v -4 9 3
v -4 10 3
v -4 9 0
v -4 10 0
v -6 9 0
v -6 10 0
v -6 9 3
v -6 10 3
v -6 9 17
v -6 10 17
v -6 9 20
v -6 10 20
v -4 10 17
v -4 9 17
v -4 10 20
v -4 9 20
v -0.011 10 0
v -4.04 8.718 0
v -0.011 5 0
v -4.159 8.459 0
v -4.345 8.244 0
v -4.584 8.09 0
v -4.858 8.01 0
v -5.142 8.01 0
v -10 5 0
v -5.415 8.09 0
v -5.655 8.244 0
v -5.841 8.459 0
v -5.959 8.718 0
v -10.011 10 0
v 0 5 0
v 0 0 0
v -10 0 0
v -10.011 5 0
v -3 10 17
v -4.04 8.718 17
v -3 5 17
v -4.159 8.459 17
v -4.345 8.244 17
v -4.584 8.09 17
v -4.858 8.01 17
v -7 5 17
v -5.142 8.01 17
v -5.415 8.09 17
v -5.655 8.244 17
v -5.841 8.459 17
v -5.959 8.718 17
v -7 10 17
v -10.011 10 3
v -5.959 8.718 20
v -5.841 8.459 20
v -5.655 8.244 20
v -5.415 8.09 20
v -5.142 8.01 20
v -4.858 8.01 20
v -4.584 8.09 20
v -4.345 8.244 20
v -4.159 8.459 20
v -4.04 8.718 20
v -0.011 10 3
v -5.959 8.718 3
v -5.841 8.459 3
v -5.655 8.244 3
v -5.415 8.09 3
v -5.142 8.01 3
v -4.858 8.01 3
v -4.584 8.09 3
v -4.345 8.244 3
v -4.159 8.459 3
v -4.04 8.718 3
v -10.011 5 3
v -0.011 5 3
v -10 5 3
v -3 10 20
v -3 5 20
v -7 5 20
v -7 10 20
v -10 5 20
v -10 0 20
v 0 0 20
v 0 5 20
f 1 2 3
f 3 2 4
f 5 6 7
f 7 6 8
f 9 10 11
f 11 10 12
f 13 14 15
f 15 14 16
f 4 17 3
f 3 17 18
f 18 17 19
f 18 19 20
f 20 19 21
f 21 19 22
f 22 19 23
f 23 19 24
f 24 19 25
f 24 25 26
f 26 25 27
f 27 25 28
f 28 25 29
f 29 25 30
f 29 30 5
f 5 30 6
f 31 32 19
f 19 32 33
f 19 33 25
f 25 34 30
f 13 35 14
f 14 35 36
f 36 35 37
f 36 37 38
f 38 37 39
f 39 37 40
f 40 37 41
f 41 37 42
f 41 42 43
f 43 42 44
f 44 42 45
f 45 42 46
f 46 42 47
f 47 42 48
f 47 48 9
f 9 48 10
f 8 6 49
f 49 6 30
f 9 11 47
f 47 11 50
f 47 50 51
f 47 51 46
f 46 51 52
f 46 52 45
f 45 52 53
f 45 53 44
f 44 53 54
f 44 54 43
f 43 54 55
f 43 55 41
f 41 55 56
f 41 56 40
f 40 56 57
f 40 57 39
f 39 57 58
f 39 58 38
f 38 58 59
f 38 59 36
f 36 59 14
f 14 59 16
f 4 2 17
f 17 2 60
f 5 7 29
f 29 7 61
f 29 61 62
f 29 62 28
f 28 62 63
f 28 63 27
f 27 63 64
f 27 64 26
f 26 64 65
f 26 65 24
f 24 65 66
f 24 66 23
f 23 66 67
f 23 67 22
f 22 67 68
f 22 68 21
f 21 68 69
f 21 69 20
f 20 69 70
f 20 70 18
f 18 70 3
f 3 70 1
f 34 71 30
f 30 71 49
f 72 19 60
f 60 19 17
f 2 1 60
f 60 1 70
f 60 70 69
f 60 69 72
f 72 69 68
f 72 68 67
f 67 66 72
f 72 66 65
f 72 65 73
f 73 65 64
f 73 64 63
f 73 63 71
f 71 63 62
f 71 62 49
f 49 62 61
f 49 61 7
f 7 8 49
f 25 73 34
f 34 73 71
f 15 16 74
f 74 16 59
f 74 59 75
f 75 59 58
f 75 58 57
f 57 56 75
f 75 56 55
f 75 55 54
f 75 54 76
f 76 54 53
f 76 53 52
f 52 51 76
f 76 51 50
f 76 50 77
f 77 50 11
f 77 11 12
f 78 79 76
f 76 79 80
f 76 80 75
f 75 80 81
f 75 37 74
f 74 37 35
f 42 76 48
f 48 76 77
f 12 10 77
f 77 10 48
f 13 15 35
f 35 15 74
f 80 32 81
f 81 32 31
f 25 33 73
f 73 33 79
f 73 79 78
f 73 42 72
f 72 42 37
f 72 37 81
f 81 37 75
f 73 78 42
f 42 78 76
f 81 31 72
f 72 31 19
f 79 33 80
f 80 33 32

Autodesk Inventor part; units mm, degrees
ref_plane "YZ Plane" through (0, 0, 0) normal (1, 0, 0) x (0, 1, 0)
ref_plane "XZ Plane" through (0, 0, 0) normal (0, 1, 0) x (-1, 0, 0)
ref_plane "XY Plane" through (0, 0, 0) normal (0, 0, 1) x (1, 0, 0)
sketch "Sketch1" plane through (0, 0, 0) normal (0, 1, 0) x (-1, 0, 0)
  line L0 (0, 0) -> (10, 0)
  line L1 (10, 0) -> (10, 20)
  line L2 (10, 20) -> (0, 20)
  line L3 (0, 20) -> (0, 0)
  dimension "d0" = 10
  dimension "d1" = 20
extrude "Extrusion1" add sketch "Sketch1" along normal blind 5
sketch "Sketch2" plane through (0, 5, 0) normal (0, 1, 0) x (1, 0, 0)
  line L0 (-10, -20) -> (0, -20) projected
  line L1 (-6.9999, -20) -> (-2.9999, -20)
  line L2 (-2.9999, -20) -> (-2.9999, -17)
  line L3 (-2.9999, -17) -> (-6.9999, -17)
  line L4 (-6.9999, -17) -> (-6.9999, -20)
  point P0 (0, 0)
  dimension "d4" = 4
  dimension "d5" = 3
extrude "Extrusion2" add sketch "Sketch2" along normal blind 5
sketch "Sketch3" plane through (0, 5, 0) normal (0, 1, 0) x (1, 0, 0)
  line L0 (-10.0114, 0) -> (-0.0114, 0)
  line L1 (-0.0114, 0) -> (-0.0114, -3)
  line L2 (-0.0114, -3) -> (-10.0114, -3)
  line L3 (-10.0114, -3) -> (-10.0114, 0)
  point P0 (0, 0)
  dimension "d8" = 10
  dimension "d9" = 3
extrude "Extrusion3" add sketch "Sketch3" along normal blind 5
sketch "Sketch4" plane through (-10, 0, 20) normal (0, 0, 1) x (1, 0, 0)
  circle A0 centre (5.0001, 9) radius 1
  point P0 (10, 0)
  dimension "d12" = 2
extrude "Extrusion4" cut sketch "Sketch4" against normal blind 21.9875
sketch "Sketch5" plane through (-10, 0, 20) normal (0, 0, 1) x (1, 0, 0)
  circle A0 centre (5.0001, 9) radius 1 projected
  line L0 (4.0001, 9) -> (6.0001, 9)
  line L1 (6.0001, 9) -> (6.0001, 10)
  line L2 (6.0001, 10) -> (4.0001, 10)
  line L3 (4.0001, 10) -> (4.0001, 9)
  point P0 (10, 0)
  dimension "d15" = 2
  dimension "d16" = 1
extrude "Extrusion5" cut sketch "Sketch5" against normal blind 22.4625 contours L3 L2 A0 | A0 L0 | A0 L2 L1 picked at (5.3251, 9.0742)
sketch "Sketch6" plane through (-10, 0, 20) normal (0, 0, 1) x (1, 0, 0)
  arc A0 (4.0001, 9) -> (6.0001, 9) centre (5.0001, 9) ccw projected
  line L0 (4.0001, 9) -> (6.0001, 9)
  line L1 (6.0001, 9) -> (6.0001, 10.3931)
  line L2 (6.0001, 10.3931) -> (4.0001, 10.3931)
  line L3 (4.0001, 10.3931) -> (4.0001, 9)
  point P0 (10, 0)
extrude "Extrusion6" cut sketch "Sketch6" against normal blind 25.1625 contours L3 L2 L1 L0
sketch "Sketch7" plane through (0, 5, 0) normal (0, 1, 0) x (1, 0, 0)
  point P0 (0, 0)
sketch "Sketch8" plane through (0, 0, 0) normal (0, 0, -1) x (-1, 0, 0)
  point P0 (0, 0)
equation "\"BendRadius\" = Thickness"
equation "\"BendReliefWidth\" = Thickness"
equation "\"BendReliefDepth\" = 0.5 * Thickness"
equation "\"CornerReliefSize\" = 4 * Thickness"
equation "\"MinimumRemnant\" = 2 * Thickness"
equation "\"TransitionRadius\" = BendRadius"
equation "\"JacobiRadiusSize\" = BendRadius"
equation "\"GapSize\" = Thickness"
equation "\"Thickness\" = 3.048"
properties part number "uchwyt_swiatlowod_2"
